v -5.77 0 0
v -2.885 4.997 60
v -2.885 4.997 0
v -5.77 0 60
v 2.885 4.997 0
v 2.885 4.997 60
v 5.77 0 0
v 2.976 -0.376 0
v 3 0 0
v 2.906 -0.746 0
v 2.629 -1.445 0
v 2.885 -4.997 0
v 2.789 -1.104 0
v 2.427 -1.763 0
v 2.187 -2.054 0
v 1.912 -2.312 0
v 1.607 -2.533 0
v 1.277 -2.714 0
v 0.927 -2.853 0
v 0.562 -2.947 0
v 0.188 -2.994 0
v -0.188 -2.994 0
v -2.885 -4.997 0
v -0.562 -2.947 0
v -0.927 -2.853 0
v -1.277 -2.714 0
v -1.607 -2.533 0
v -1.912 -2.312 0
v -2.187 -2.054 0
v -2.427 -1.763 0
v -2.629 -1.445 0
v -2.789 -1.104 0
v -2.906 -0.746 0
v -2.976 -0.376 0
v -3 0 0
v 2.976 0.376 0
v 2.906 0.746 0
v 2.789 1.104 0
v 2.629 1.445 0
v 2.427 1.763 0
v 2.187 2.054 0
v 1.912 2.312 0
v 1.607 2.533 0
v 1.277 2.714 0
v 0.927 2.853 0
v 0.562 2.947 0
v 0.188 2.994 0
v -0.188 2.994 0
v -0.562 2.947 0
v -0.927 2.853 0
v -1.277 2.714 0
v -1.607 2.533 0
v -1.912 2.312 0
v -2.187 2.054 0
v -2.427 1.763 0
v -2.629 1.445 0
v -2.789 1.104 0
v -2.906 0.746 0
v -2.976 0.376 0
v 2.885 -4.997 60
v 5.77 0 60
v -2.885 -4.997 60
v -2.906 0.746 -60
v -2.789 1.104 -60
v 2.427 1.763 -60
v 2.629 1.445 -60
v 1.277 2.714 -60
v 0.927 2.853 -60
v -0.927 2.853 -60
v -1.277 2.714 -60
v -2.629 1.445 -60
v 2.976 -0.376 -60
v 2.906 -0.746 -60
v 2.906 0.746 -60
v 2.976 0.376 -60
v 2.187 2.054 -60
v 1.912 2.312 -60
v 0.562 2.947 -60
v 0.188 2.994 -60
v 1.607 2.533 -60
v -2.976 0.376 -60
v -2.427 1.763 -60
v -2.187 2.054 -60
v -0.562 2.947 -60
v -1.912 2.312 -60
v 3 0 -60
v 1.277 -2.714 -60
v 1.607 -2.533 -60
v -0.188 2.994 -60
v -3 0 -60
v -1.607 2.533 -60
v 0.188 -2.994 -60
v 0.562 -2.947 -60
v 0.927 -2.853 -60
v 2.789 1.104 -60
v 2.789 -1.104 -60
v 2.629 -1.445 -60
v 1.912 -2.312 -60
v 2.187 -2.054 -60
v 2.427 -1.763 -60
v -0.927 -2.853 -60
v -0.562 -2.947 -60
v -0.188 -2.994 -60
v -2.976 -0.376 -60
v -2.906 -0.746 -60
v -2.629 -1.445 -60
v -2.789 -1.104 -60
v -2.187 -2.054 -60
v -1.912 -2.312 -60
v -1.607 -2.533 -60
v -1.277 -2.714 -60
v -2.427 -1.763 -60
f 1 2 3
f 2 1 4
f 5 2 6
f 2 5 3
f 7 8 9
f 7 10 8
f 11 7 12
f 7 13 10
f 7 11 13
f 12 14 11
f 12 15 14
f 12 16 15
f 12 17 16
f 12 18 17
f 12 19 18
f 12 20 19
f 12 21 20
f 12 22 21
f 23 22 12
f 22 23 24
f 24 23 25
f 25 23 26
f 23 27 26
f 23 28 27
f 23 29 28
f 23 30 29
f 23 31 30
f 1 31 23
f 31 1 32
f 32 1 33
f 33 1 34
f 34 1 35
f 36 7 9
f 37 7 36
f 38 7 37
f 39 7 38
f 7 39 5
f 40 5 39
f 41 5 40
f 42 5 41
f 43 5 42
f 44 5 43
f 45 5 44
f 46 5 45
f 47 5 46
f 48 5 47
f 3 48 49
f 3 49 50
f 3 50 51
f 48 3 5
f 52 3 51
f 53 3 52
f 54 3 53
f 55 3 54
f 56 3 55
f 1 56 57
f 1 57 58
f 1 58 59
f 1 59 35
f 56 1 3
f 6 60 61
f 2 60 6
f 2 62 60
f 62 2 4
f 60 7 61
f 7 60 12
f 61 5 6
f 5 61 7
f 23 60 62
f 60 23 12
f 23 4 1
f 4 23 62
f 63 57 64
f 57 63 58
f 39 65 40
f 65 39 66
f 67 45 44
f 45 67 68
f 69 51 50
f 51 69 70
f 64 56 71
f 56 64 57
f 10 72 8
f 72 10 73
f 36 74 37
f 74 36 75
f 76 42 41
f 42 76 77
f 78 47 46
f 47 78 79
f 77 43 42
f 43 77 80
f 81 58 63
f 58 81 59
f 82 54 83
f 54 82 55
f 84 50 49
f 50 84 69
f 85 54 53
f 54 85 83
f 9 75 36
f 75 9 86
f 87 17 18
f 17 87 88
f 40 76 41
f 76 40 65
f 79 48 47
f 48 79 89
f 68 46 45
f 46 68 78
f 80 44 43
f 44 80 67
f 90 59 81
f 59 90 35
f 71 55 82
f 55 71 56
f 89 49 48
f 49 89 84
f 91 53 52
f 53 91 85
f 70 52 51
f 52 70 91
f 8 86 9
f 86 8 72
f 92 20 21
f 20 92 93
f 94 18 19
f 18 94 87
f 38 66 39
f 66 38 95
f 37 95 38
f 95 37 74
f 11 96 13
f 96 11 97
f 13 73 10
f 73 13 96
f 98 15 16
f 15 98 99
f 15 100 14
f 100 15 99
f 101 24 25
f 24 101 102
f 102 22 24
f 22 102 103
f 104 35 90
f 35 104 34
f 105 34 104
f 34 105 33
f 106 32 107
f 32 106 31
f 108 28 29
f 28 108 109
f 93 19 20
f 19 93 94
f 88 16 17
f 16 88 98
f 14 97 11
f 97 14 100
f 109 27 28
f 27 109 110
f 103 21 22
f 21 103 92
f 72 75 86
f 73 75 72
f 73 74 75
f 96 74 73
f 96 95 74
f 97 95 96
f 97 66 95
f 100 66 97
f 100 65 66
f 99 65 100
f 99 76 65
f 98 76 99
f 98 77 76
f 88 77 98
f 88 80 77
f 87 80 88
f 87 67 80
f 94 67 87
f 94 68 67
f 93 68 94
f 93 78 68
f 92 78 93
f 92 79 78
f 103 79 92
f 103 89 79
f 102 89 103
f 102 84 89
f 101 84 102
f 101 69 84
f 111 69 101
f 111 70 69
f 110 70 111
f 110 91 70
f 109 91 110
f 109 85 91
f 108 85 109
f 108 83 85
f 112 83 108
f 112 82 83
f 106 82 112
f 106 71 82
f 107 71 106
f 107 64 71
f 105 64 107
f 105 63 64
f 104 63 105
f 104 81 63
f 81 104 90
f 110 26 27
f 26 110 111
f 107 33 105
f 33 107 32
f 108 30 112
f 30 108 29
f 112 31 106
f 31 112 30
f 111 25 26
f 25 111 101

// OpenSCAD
$fn = 50;


difference() {
	union() {
		translate(v = [0, 0, 0]) {
			rotate(a = [0, 0, 0]) {
				translate(v = [0, 0, 0]) {
					rotate(a = [0, 0, 0]) {
						linear_extrude(height = 60) {
							polygon(points = [[5.7700000000, 0.0000000000], [2.8850000000, 4.9969665798], [-2.8850000000, 4.9969665798], [-5.7700000000, 0.0000000000], [-2.8850000000, -4.9969665798], [2.8850000000, -4.9969665798]]);
						}
					}
				}
			}
		}
		translate(v = [0, 0, -60]) {
			rotate(a = [0, 0, 0]) {
				cylinder(h = 60, r = 3.0000000000);
			}
		}
	}
	union();
}
